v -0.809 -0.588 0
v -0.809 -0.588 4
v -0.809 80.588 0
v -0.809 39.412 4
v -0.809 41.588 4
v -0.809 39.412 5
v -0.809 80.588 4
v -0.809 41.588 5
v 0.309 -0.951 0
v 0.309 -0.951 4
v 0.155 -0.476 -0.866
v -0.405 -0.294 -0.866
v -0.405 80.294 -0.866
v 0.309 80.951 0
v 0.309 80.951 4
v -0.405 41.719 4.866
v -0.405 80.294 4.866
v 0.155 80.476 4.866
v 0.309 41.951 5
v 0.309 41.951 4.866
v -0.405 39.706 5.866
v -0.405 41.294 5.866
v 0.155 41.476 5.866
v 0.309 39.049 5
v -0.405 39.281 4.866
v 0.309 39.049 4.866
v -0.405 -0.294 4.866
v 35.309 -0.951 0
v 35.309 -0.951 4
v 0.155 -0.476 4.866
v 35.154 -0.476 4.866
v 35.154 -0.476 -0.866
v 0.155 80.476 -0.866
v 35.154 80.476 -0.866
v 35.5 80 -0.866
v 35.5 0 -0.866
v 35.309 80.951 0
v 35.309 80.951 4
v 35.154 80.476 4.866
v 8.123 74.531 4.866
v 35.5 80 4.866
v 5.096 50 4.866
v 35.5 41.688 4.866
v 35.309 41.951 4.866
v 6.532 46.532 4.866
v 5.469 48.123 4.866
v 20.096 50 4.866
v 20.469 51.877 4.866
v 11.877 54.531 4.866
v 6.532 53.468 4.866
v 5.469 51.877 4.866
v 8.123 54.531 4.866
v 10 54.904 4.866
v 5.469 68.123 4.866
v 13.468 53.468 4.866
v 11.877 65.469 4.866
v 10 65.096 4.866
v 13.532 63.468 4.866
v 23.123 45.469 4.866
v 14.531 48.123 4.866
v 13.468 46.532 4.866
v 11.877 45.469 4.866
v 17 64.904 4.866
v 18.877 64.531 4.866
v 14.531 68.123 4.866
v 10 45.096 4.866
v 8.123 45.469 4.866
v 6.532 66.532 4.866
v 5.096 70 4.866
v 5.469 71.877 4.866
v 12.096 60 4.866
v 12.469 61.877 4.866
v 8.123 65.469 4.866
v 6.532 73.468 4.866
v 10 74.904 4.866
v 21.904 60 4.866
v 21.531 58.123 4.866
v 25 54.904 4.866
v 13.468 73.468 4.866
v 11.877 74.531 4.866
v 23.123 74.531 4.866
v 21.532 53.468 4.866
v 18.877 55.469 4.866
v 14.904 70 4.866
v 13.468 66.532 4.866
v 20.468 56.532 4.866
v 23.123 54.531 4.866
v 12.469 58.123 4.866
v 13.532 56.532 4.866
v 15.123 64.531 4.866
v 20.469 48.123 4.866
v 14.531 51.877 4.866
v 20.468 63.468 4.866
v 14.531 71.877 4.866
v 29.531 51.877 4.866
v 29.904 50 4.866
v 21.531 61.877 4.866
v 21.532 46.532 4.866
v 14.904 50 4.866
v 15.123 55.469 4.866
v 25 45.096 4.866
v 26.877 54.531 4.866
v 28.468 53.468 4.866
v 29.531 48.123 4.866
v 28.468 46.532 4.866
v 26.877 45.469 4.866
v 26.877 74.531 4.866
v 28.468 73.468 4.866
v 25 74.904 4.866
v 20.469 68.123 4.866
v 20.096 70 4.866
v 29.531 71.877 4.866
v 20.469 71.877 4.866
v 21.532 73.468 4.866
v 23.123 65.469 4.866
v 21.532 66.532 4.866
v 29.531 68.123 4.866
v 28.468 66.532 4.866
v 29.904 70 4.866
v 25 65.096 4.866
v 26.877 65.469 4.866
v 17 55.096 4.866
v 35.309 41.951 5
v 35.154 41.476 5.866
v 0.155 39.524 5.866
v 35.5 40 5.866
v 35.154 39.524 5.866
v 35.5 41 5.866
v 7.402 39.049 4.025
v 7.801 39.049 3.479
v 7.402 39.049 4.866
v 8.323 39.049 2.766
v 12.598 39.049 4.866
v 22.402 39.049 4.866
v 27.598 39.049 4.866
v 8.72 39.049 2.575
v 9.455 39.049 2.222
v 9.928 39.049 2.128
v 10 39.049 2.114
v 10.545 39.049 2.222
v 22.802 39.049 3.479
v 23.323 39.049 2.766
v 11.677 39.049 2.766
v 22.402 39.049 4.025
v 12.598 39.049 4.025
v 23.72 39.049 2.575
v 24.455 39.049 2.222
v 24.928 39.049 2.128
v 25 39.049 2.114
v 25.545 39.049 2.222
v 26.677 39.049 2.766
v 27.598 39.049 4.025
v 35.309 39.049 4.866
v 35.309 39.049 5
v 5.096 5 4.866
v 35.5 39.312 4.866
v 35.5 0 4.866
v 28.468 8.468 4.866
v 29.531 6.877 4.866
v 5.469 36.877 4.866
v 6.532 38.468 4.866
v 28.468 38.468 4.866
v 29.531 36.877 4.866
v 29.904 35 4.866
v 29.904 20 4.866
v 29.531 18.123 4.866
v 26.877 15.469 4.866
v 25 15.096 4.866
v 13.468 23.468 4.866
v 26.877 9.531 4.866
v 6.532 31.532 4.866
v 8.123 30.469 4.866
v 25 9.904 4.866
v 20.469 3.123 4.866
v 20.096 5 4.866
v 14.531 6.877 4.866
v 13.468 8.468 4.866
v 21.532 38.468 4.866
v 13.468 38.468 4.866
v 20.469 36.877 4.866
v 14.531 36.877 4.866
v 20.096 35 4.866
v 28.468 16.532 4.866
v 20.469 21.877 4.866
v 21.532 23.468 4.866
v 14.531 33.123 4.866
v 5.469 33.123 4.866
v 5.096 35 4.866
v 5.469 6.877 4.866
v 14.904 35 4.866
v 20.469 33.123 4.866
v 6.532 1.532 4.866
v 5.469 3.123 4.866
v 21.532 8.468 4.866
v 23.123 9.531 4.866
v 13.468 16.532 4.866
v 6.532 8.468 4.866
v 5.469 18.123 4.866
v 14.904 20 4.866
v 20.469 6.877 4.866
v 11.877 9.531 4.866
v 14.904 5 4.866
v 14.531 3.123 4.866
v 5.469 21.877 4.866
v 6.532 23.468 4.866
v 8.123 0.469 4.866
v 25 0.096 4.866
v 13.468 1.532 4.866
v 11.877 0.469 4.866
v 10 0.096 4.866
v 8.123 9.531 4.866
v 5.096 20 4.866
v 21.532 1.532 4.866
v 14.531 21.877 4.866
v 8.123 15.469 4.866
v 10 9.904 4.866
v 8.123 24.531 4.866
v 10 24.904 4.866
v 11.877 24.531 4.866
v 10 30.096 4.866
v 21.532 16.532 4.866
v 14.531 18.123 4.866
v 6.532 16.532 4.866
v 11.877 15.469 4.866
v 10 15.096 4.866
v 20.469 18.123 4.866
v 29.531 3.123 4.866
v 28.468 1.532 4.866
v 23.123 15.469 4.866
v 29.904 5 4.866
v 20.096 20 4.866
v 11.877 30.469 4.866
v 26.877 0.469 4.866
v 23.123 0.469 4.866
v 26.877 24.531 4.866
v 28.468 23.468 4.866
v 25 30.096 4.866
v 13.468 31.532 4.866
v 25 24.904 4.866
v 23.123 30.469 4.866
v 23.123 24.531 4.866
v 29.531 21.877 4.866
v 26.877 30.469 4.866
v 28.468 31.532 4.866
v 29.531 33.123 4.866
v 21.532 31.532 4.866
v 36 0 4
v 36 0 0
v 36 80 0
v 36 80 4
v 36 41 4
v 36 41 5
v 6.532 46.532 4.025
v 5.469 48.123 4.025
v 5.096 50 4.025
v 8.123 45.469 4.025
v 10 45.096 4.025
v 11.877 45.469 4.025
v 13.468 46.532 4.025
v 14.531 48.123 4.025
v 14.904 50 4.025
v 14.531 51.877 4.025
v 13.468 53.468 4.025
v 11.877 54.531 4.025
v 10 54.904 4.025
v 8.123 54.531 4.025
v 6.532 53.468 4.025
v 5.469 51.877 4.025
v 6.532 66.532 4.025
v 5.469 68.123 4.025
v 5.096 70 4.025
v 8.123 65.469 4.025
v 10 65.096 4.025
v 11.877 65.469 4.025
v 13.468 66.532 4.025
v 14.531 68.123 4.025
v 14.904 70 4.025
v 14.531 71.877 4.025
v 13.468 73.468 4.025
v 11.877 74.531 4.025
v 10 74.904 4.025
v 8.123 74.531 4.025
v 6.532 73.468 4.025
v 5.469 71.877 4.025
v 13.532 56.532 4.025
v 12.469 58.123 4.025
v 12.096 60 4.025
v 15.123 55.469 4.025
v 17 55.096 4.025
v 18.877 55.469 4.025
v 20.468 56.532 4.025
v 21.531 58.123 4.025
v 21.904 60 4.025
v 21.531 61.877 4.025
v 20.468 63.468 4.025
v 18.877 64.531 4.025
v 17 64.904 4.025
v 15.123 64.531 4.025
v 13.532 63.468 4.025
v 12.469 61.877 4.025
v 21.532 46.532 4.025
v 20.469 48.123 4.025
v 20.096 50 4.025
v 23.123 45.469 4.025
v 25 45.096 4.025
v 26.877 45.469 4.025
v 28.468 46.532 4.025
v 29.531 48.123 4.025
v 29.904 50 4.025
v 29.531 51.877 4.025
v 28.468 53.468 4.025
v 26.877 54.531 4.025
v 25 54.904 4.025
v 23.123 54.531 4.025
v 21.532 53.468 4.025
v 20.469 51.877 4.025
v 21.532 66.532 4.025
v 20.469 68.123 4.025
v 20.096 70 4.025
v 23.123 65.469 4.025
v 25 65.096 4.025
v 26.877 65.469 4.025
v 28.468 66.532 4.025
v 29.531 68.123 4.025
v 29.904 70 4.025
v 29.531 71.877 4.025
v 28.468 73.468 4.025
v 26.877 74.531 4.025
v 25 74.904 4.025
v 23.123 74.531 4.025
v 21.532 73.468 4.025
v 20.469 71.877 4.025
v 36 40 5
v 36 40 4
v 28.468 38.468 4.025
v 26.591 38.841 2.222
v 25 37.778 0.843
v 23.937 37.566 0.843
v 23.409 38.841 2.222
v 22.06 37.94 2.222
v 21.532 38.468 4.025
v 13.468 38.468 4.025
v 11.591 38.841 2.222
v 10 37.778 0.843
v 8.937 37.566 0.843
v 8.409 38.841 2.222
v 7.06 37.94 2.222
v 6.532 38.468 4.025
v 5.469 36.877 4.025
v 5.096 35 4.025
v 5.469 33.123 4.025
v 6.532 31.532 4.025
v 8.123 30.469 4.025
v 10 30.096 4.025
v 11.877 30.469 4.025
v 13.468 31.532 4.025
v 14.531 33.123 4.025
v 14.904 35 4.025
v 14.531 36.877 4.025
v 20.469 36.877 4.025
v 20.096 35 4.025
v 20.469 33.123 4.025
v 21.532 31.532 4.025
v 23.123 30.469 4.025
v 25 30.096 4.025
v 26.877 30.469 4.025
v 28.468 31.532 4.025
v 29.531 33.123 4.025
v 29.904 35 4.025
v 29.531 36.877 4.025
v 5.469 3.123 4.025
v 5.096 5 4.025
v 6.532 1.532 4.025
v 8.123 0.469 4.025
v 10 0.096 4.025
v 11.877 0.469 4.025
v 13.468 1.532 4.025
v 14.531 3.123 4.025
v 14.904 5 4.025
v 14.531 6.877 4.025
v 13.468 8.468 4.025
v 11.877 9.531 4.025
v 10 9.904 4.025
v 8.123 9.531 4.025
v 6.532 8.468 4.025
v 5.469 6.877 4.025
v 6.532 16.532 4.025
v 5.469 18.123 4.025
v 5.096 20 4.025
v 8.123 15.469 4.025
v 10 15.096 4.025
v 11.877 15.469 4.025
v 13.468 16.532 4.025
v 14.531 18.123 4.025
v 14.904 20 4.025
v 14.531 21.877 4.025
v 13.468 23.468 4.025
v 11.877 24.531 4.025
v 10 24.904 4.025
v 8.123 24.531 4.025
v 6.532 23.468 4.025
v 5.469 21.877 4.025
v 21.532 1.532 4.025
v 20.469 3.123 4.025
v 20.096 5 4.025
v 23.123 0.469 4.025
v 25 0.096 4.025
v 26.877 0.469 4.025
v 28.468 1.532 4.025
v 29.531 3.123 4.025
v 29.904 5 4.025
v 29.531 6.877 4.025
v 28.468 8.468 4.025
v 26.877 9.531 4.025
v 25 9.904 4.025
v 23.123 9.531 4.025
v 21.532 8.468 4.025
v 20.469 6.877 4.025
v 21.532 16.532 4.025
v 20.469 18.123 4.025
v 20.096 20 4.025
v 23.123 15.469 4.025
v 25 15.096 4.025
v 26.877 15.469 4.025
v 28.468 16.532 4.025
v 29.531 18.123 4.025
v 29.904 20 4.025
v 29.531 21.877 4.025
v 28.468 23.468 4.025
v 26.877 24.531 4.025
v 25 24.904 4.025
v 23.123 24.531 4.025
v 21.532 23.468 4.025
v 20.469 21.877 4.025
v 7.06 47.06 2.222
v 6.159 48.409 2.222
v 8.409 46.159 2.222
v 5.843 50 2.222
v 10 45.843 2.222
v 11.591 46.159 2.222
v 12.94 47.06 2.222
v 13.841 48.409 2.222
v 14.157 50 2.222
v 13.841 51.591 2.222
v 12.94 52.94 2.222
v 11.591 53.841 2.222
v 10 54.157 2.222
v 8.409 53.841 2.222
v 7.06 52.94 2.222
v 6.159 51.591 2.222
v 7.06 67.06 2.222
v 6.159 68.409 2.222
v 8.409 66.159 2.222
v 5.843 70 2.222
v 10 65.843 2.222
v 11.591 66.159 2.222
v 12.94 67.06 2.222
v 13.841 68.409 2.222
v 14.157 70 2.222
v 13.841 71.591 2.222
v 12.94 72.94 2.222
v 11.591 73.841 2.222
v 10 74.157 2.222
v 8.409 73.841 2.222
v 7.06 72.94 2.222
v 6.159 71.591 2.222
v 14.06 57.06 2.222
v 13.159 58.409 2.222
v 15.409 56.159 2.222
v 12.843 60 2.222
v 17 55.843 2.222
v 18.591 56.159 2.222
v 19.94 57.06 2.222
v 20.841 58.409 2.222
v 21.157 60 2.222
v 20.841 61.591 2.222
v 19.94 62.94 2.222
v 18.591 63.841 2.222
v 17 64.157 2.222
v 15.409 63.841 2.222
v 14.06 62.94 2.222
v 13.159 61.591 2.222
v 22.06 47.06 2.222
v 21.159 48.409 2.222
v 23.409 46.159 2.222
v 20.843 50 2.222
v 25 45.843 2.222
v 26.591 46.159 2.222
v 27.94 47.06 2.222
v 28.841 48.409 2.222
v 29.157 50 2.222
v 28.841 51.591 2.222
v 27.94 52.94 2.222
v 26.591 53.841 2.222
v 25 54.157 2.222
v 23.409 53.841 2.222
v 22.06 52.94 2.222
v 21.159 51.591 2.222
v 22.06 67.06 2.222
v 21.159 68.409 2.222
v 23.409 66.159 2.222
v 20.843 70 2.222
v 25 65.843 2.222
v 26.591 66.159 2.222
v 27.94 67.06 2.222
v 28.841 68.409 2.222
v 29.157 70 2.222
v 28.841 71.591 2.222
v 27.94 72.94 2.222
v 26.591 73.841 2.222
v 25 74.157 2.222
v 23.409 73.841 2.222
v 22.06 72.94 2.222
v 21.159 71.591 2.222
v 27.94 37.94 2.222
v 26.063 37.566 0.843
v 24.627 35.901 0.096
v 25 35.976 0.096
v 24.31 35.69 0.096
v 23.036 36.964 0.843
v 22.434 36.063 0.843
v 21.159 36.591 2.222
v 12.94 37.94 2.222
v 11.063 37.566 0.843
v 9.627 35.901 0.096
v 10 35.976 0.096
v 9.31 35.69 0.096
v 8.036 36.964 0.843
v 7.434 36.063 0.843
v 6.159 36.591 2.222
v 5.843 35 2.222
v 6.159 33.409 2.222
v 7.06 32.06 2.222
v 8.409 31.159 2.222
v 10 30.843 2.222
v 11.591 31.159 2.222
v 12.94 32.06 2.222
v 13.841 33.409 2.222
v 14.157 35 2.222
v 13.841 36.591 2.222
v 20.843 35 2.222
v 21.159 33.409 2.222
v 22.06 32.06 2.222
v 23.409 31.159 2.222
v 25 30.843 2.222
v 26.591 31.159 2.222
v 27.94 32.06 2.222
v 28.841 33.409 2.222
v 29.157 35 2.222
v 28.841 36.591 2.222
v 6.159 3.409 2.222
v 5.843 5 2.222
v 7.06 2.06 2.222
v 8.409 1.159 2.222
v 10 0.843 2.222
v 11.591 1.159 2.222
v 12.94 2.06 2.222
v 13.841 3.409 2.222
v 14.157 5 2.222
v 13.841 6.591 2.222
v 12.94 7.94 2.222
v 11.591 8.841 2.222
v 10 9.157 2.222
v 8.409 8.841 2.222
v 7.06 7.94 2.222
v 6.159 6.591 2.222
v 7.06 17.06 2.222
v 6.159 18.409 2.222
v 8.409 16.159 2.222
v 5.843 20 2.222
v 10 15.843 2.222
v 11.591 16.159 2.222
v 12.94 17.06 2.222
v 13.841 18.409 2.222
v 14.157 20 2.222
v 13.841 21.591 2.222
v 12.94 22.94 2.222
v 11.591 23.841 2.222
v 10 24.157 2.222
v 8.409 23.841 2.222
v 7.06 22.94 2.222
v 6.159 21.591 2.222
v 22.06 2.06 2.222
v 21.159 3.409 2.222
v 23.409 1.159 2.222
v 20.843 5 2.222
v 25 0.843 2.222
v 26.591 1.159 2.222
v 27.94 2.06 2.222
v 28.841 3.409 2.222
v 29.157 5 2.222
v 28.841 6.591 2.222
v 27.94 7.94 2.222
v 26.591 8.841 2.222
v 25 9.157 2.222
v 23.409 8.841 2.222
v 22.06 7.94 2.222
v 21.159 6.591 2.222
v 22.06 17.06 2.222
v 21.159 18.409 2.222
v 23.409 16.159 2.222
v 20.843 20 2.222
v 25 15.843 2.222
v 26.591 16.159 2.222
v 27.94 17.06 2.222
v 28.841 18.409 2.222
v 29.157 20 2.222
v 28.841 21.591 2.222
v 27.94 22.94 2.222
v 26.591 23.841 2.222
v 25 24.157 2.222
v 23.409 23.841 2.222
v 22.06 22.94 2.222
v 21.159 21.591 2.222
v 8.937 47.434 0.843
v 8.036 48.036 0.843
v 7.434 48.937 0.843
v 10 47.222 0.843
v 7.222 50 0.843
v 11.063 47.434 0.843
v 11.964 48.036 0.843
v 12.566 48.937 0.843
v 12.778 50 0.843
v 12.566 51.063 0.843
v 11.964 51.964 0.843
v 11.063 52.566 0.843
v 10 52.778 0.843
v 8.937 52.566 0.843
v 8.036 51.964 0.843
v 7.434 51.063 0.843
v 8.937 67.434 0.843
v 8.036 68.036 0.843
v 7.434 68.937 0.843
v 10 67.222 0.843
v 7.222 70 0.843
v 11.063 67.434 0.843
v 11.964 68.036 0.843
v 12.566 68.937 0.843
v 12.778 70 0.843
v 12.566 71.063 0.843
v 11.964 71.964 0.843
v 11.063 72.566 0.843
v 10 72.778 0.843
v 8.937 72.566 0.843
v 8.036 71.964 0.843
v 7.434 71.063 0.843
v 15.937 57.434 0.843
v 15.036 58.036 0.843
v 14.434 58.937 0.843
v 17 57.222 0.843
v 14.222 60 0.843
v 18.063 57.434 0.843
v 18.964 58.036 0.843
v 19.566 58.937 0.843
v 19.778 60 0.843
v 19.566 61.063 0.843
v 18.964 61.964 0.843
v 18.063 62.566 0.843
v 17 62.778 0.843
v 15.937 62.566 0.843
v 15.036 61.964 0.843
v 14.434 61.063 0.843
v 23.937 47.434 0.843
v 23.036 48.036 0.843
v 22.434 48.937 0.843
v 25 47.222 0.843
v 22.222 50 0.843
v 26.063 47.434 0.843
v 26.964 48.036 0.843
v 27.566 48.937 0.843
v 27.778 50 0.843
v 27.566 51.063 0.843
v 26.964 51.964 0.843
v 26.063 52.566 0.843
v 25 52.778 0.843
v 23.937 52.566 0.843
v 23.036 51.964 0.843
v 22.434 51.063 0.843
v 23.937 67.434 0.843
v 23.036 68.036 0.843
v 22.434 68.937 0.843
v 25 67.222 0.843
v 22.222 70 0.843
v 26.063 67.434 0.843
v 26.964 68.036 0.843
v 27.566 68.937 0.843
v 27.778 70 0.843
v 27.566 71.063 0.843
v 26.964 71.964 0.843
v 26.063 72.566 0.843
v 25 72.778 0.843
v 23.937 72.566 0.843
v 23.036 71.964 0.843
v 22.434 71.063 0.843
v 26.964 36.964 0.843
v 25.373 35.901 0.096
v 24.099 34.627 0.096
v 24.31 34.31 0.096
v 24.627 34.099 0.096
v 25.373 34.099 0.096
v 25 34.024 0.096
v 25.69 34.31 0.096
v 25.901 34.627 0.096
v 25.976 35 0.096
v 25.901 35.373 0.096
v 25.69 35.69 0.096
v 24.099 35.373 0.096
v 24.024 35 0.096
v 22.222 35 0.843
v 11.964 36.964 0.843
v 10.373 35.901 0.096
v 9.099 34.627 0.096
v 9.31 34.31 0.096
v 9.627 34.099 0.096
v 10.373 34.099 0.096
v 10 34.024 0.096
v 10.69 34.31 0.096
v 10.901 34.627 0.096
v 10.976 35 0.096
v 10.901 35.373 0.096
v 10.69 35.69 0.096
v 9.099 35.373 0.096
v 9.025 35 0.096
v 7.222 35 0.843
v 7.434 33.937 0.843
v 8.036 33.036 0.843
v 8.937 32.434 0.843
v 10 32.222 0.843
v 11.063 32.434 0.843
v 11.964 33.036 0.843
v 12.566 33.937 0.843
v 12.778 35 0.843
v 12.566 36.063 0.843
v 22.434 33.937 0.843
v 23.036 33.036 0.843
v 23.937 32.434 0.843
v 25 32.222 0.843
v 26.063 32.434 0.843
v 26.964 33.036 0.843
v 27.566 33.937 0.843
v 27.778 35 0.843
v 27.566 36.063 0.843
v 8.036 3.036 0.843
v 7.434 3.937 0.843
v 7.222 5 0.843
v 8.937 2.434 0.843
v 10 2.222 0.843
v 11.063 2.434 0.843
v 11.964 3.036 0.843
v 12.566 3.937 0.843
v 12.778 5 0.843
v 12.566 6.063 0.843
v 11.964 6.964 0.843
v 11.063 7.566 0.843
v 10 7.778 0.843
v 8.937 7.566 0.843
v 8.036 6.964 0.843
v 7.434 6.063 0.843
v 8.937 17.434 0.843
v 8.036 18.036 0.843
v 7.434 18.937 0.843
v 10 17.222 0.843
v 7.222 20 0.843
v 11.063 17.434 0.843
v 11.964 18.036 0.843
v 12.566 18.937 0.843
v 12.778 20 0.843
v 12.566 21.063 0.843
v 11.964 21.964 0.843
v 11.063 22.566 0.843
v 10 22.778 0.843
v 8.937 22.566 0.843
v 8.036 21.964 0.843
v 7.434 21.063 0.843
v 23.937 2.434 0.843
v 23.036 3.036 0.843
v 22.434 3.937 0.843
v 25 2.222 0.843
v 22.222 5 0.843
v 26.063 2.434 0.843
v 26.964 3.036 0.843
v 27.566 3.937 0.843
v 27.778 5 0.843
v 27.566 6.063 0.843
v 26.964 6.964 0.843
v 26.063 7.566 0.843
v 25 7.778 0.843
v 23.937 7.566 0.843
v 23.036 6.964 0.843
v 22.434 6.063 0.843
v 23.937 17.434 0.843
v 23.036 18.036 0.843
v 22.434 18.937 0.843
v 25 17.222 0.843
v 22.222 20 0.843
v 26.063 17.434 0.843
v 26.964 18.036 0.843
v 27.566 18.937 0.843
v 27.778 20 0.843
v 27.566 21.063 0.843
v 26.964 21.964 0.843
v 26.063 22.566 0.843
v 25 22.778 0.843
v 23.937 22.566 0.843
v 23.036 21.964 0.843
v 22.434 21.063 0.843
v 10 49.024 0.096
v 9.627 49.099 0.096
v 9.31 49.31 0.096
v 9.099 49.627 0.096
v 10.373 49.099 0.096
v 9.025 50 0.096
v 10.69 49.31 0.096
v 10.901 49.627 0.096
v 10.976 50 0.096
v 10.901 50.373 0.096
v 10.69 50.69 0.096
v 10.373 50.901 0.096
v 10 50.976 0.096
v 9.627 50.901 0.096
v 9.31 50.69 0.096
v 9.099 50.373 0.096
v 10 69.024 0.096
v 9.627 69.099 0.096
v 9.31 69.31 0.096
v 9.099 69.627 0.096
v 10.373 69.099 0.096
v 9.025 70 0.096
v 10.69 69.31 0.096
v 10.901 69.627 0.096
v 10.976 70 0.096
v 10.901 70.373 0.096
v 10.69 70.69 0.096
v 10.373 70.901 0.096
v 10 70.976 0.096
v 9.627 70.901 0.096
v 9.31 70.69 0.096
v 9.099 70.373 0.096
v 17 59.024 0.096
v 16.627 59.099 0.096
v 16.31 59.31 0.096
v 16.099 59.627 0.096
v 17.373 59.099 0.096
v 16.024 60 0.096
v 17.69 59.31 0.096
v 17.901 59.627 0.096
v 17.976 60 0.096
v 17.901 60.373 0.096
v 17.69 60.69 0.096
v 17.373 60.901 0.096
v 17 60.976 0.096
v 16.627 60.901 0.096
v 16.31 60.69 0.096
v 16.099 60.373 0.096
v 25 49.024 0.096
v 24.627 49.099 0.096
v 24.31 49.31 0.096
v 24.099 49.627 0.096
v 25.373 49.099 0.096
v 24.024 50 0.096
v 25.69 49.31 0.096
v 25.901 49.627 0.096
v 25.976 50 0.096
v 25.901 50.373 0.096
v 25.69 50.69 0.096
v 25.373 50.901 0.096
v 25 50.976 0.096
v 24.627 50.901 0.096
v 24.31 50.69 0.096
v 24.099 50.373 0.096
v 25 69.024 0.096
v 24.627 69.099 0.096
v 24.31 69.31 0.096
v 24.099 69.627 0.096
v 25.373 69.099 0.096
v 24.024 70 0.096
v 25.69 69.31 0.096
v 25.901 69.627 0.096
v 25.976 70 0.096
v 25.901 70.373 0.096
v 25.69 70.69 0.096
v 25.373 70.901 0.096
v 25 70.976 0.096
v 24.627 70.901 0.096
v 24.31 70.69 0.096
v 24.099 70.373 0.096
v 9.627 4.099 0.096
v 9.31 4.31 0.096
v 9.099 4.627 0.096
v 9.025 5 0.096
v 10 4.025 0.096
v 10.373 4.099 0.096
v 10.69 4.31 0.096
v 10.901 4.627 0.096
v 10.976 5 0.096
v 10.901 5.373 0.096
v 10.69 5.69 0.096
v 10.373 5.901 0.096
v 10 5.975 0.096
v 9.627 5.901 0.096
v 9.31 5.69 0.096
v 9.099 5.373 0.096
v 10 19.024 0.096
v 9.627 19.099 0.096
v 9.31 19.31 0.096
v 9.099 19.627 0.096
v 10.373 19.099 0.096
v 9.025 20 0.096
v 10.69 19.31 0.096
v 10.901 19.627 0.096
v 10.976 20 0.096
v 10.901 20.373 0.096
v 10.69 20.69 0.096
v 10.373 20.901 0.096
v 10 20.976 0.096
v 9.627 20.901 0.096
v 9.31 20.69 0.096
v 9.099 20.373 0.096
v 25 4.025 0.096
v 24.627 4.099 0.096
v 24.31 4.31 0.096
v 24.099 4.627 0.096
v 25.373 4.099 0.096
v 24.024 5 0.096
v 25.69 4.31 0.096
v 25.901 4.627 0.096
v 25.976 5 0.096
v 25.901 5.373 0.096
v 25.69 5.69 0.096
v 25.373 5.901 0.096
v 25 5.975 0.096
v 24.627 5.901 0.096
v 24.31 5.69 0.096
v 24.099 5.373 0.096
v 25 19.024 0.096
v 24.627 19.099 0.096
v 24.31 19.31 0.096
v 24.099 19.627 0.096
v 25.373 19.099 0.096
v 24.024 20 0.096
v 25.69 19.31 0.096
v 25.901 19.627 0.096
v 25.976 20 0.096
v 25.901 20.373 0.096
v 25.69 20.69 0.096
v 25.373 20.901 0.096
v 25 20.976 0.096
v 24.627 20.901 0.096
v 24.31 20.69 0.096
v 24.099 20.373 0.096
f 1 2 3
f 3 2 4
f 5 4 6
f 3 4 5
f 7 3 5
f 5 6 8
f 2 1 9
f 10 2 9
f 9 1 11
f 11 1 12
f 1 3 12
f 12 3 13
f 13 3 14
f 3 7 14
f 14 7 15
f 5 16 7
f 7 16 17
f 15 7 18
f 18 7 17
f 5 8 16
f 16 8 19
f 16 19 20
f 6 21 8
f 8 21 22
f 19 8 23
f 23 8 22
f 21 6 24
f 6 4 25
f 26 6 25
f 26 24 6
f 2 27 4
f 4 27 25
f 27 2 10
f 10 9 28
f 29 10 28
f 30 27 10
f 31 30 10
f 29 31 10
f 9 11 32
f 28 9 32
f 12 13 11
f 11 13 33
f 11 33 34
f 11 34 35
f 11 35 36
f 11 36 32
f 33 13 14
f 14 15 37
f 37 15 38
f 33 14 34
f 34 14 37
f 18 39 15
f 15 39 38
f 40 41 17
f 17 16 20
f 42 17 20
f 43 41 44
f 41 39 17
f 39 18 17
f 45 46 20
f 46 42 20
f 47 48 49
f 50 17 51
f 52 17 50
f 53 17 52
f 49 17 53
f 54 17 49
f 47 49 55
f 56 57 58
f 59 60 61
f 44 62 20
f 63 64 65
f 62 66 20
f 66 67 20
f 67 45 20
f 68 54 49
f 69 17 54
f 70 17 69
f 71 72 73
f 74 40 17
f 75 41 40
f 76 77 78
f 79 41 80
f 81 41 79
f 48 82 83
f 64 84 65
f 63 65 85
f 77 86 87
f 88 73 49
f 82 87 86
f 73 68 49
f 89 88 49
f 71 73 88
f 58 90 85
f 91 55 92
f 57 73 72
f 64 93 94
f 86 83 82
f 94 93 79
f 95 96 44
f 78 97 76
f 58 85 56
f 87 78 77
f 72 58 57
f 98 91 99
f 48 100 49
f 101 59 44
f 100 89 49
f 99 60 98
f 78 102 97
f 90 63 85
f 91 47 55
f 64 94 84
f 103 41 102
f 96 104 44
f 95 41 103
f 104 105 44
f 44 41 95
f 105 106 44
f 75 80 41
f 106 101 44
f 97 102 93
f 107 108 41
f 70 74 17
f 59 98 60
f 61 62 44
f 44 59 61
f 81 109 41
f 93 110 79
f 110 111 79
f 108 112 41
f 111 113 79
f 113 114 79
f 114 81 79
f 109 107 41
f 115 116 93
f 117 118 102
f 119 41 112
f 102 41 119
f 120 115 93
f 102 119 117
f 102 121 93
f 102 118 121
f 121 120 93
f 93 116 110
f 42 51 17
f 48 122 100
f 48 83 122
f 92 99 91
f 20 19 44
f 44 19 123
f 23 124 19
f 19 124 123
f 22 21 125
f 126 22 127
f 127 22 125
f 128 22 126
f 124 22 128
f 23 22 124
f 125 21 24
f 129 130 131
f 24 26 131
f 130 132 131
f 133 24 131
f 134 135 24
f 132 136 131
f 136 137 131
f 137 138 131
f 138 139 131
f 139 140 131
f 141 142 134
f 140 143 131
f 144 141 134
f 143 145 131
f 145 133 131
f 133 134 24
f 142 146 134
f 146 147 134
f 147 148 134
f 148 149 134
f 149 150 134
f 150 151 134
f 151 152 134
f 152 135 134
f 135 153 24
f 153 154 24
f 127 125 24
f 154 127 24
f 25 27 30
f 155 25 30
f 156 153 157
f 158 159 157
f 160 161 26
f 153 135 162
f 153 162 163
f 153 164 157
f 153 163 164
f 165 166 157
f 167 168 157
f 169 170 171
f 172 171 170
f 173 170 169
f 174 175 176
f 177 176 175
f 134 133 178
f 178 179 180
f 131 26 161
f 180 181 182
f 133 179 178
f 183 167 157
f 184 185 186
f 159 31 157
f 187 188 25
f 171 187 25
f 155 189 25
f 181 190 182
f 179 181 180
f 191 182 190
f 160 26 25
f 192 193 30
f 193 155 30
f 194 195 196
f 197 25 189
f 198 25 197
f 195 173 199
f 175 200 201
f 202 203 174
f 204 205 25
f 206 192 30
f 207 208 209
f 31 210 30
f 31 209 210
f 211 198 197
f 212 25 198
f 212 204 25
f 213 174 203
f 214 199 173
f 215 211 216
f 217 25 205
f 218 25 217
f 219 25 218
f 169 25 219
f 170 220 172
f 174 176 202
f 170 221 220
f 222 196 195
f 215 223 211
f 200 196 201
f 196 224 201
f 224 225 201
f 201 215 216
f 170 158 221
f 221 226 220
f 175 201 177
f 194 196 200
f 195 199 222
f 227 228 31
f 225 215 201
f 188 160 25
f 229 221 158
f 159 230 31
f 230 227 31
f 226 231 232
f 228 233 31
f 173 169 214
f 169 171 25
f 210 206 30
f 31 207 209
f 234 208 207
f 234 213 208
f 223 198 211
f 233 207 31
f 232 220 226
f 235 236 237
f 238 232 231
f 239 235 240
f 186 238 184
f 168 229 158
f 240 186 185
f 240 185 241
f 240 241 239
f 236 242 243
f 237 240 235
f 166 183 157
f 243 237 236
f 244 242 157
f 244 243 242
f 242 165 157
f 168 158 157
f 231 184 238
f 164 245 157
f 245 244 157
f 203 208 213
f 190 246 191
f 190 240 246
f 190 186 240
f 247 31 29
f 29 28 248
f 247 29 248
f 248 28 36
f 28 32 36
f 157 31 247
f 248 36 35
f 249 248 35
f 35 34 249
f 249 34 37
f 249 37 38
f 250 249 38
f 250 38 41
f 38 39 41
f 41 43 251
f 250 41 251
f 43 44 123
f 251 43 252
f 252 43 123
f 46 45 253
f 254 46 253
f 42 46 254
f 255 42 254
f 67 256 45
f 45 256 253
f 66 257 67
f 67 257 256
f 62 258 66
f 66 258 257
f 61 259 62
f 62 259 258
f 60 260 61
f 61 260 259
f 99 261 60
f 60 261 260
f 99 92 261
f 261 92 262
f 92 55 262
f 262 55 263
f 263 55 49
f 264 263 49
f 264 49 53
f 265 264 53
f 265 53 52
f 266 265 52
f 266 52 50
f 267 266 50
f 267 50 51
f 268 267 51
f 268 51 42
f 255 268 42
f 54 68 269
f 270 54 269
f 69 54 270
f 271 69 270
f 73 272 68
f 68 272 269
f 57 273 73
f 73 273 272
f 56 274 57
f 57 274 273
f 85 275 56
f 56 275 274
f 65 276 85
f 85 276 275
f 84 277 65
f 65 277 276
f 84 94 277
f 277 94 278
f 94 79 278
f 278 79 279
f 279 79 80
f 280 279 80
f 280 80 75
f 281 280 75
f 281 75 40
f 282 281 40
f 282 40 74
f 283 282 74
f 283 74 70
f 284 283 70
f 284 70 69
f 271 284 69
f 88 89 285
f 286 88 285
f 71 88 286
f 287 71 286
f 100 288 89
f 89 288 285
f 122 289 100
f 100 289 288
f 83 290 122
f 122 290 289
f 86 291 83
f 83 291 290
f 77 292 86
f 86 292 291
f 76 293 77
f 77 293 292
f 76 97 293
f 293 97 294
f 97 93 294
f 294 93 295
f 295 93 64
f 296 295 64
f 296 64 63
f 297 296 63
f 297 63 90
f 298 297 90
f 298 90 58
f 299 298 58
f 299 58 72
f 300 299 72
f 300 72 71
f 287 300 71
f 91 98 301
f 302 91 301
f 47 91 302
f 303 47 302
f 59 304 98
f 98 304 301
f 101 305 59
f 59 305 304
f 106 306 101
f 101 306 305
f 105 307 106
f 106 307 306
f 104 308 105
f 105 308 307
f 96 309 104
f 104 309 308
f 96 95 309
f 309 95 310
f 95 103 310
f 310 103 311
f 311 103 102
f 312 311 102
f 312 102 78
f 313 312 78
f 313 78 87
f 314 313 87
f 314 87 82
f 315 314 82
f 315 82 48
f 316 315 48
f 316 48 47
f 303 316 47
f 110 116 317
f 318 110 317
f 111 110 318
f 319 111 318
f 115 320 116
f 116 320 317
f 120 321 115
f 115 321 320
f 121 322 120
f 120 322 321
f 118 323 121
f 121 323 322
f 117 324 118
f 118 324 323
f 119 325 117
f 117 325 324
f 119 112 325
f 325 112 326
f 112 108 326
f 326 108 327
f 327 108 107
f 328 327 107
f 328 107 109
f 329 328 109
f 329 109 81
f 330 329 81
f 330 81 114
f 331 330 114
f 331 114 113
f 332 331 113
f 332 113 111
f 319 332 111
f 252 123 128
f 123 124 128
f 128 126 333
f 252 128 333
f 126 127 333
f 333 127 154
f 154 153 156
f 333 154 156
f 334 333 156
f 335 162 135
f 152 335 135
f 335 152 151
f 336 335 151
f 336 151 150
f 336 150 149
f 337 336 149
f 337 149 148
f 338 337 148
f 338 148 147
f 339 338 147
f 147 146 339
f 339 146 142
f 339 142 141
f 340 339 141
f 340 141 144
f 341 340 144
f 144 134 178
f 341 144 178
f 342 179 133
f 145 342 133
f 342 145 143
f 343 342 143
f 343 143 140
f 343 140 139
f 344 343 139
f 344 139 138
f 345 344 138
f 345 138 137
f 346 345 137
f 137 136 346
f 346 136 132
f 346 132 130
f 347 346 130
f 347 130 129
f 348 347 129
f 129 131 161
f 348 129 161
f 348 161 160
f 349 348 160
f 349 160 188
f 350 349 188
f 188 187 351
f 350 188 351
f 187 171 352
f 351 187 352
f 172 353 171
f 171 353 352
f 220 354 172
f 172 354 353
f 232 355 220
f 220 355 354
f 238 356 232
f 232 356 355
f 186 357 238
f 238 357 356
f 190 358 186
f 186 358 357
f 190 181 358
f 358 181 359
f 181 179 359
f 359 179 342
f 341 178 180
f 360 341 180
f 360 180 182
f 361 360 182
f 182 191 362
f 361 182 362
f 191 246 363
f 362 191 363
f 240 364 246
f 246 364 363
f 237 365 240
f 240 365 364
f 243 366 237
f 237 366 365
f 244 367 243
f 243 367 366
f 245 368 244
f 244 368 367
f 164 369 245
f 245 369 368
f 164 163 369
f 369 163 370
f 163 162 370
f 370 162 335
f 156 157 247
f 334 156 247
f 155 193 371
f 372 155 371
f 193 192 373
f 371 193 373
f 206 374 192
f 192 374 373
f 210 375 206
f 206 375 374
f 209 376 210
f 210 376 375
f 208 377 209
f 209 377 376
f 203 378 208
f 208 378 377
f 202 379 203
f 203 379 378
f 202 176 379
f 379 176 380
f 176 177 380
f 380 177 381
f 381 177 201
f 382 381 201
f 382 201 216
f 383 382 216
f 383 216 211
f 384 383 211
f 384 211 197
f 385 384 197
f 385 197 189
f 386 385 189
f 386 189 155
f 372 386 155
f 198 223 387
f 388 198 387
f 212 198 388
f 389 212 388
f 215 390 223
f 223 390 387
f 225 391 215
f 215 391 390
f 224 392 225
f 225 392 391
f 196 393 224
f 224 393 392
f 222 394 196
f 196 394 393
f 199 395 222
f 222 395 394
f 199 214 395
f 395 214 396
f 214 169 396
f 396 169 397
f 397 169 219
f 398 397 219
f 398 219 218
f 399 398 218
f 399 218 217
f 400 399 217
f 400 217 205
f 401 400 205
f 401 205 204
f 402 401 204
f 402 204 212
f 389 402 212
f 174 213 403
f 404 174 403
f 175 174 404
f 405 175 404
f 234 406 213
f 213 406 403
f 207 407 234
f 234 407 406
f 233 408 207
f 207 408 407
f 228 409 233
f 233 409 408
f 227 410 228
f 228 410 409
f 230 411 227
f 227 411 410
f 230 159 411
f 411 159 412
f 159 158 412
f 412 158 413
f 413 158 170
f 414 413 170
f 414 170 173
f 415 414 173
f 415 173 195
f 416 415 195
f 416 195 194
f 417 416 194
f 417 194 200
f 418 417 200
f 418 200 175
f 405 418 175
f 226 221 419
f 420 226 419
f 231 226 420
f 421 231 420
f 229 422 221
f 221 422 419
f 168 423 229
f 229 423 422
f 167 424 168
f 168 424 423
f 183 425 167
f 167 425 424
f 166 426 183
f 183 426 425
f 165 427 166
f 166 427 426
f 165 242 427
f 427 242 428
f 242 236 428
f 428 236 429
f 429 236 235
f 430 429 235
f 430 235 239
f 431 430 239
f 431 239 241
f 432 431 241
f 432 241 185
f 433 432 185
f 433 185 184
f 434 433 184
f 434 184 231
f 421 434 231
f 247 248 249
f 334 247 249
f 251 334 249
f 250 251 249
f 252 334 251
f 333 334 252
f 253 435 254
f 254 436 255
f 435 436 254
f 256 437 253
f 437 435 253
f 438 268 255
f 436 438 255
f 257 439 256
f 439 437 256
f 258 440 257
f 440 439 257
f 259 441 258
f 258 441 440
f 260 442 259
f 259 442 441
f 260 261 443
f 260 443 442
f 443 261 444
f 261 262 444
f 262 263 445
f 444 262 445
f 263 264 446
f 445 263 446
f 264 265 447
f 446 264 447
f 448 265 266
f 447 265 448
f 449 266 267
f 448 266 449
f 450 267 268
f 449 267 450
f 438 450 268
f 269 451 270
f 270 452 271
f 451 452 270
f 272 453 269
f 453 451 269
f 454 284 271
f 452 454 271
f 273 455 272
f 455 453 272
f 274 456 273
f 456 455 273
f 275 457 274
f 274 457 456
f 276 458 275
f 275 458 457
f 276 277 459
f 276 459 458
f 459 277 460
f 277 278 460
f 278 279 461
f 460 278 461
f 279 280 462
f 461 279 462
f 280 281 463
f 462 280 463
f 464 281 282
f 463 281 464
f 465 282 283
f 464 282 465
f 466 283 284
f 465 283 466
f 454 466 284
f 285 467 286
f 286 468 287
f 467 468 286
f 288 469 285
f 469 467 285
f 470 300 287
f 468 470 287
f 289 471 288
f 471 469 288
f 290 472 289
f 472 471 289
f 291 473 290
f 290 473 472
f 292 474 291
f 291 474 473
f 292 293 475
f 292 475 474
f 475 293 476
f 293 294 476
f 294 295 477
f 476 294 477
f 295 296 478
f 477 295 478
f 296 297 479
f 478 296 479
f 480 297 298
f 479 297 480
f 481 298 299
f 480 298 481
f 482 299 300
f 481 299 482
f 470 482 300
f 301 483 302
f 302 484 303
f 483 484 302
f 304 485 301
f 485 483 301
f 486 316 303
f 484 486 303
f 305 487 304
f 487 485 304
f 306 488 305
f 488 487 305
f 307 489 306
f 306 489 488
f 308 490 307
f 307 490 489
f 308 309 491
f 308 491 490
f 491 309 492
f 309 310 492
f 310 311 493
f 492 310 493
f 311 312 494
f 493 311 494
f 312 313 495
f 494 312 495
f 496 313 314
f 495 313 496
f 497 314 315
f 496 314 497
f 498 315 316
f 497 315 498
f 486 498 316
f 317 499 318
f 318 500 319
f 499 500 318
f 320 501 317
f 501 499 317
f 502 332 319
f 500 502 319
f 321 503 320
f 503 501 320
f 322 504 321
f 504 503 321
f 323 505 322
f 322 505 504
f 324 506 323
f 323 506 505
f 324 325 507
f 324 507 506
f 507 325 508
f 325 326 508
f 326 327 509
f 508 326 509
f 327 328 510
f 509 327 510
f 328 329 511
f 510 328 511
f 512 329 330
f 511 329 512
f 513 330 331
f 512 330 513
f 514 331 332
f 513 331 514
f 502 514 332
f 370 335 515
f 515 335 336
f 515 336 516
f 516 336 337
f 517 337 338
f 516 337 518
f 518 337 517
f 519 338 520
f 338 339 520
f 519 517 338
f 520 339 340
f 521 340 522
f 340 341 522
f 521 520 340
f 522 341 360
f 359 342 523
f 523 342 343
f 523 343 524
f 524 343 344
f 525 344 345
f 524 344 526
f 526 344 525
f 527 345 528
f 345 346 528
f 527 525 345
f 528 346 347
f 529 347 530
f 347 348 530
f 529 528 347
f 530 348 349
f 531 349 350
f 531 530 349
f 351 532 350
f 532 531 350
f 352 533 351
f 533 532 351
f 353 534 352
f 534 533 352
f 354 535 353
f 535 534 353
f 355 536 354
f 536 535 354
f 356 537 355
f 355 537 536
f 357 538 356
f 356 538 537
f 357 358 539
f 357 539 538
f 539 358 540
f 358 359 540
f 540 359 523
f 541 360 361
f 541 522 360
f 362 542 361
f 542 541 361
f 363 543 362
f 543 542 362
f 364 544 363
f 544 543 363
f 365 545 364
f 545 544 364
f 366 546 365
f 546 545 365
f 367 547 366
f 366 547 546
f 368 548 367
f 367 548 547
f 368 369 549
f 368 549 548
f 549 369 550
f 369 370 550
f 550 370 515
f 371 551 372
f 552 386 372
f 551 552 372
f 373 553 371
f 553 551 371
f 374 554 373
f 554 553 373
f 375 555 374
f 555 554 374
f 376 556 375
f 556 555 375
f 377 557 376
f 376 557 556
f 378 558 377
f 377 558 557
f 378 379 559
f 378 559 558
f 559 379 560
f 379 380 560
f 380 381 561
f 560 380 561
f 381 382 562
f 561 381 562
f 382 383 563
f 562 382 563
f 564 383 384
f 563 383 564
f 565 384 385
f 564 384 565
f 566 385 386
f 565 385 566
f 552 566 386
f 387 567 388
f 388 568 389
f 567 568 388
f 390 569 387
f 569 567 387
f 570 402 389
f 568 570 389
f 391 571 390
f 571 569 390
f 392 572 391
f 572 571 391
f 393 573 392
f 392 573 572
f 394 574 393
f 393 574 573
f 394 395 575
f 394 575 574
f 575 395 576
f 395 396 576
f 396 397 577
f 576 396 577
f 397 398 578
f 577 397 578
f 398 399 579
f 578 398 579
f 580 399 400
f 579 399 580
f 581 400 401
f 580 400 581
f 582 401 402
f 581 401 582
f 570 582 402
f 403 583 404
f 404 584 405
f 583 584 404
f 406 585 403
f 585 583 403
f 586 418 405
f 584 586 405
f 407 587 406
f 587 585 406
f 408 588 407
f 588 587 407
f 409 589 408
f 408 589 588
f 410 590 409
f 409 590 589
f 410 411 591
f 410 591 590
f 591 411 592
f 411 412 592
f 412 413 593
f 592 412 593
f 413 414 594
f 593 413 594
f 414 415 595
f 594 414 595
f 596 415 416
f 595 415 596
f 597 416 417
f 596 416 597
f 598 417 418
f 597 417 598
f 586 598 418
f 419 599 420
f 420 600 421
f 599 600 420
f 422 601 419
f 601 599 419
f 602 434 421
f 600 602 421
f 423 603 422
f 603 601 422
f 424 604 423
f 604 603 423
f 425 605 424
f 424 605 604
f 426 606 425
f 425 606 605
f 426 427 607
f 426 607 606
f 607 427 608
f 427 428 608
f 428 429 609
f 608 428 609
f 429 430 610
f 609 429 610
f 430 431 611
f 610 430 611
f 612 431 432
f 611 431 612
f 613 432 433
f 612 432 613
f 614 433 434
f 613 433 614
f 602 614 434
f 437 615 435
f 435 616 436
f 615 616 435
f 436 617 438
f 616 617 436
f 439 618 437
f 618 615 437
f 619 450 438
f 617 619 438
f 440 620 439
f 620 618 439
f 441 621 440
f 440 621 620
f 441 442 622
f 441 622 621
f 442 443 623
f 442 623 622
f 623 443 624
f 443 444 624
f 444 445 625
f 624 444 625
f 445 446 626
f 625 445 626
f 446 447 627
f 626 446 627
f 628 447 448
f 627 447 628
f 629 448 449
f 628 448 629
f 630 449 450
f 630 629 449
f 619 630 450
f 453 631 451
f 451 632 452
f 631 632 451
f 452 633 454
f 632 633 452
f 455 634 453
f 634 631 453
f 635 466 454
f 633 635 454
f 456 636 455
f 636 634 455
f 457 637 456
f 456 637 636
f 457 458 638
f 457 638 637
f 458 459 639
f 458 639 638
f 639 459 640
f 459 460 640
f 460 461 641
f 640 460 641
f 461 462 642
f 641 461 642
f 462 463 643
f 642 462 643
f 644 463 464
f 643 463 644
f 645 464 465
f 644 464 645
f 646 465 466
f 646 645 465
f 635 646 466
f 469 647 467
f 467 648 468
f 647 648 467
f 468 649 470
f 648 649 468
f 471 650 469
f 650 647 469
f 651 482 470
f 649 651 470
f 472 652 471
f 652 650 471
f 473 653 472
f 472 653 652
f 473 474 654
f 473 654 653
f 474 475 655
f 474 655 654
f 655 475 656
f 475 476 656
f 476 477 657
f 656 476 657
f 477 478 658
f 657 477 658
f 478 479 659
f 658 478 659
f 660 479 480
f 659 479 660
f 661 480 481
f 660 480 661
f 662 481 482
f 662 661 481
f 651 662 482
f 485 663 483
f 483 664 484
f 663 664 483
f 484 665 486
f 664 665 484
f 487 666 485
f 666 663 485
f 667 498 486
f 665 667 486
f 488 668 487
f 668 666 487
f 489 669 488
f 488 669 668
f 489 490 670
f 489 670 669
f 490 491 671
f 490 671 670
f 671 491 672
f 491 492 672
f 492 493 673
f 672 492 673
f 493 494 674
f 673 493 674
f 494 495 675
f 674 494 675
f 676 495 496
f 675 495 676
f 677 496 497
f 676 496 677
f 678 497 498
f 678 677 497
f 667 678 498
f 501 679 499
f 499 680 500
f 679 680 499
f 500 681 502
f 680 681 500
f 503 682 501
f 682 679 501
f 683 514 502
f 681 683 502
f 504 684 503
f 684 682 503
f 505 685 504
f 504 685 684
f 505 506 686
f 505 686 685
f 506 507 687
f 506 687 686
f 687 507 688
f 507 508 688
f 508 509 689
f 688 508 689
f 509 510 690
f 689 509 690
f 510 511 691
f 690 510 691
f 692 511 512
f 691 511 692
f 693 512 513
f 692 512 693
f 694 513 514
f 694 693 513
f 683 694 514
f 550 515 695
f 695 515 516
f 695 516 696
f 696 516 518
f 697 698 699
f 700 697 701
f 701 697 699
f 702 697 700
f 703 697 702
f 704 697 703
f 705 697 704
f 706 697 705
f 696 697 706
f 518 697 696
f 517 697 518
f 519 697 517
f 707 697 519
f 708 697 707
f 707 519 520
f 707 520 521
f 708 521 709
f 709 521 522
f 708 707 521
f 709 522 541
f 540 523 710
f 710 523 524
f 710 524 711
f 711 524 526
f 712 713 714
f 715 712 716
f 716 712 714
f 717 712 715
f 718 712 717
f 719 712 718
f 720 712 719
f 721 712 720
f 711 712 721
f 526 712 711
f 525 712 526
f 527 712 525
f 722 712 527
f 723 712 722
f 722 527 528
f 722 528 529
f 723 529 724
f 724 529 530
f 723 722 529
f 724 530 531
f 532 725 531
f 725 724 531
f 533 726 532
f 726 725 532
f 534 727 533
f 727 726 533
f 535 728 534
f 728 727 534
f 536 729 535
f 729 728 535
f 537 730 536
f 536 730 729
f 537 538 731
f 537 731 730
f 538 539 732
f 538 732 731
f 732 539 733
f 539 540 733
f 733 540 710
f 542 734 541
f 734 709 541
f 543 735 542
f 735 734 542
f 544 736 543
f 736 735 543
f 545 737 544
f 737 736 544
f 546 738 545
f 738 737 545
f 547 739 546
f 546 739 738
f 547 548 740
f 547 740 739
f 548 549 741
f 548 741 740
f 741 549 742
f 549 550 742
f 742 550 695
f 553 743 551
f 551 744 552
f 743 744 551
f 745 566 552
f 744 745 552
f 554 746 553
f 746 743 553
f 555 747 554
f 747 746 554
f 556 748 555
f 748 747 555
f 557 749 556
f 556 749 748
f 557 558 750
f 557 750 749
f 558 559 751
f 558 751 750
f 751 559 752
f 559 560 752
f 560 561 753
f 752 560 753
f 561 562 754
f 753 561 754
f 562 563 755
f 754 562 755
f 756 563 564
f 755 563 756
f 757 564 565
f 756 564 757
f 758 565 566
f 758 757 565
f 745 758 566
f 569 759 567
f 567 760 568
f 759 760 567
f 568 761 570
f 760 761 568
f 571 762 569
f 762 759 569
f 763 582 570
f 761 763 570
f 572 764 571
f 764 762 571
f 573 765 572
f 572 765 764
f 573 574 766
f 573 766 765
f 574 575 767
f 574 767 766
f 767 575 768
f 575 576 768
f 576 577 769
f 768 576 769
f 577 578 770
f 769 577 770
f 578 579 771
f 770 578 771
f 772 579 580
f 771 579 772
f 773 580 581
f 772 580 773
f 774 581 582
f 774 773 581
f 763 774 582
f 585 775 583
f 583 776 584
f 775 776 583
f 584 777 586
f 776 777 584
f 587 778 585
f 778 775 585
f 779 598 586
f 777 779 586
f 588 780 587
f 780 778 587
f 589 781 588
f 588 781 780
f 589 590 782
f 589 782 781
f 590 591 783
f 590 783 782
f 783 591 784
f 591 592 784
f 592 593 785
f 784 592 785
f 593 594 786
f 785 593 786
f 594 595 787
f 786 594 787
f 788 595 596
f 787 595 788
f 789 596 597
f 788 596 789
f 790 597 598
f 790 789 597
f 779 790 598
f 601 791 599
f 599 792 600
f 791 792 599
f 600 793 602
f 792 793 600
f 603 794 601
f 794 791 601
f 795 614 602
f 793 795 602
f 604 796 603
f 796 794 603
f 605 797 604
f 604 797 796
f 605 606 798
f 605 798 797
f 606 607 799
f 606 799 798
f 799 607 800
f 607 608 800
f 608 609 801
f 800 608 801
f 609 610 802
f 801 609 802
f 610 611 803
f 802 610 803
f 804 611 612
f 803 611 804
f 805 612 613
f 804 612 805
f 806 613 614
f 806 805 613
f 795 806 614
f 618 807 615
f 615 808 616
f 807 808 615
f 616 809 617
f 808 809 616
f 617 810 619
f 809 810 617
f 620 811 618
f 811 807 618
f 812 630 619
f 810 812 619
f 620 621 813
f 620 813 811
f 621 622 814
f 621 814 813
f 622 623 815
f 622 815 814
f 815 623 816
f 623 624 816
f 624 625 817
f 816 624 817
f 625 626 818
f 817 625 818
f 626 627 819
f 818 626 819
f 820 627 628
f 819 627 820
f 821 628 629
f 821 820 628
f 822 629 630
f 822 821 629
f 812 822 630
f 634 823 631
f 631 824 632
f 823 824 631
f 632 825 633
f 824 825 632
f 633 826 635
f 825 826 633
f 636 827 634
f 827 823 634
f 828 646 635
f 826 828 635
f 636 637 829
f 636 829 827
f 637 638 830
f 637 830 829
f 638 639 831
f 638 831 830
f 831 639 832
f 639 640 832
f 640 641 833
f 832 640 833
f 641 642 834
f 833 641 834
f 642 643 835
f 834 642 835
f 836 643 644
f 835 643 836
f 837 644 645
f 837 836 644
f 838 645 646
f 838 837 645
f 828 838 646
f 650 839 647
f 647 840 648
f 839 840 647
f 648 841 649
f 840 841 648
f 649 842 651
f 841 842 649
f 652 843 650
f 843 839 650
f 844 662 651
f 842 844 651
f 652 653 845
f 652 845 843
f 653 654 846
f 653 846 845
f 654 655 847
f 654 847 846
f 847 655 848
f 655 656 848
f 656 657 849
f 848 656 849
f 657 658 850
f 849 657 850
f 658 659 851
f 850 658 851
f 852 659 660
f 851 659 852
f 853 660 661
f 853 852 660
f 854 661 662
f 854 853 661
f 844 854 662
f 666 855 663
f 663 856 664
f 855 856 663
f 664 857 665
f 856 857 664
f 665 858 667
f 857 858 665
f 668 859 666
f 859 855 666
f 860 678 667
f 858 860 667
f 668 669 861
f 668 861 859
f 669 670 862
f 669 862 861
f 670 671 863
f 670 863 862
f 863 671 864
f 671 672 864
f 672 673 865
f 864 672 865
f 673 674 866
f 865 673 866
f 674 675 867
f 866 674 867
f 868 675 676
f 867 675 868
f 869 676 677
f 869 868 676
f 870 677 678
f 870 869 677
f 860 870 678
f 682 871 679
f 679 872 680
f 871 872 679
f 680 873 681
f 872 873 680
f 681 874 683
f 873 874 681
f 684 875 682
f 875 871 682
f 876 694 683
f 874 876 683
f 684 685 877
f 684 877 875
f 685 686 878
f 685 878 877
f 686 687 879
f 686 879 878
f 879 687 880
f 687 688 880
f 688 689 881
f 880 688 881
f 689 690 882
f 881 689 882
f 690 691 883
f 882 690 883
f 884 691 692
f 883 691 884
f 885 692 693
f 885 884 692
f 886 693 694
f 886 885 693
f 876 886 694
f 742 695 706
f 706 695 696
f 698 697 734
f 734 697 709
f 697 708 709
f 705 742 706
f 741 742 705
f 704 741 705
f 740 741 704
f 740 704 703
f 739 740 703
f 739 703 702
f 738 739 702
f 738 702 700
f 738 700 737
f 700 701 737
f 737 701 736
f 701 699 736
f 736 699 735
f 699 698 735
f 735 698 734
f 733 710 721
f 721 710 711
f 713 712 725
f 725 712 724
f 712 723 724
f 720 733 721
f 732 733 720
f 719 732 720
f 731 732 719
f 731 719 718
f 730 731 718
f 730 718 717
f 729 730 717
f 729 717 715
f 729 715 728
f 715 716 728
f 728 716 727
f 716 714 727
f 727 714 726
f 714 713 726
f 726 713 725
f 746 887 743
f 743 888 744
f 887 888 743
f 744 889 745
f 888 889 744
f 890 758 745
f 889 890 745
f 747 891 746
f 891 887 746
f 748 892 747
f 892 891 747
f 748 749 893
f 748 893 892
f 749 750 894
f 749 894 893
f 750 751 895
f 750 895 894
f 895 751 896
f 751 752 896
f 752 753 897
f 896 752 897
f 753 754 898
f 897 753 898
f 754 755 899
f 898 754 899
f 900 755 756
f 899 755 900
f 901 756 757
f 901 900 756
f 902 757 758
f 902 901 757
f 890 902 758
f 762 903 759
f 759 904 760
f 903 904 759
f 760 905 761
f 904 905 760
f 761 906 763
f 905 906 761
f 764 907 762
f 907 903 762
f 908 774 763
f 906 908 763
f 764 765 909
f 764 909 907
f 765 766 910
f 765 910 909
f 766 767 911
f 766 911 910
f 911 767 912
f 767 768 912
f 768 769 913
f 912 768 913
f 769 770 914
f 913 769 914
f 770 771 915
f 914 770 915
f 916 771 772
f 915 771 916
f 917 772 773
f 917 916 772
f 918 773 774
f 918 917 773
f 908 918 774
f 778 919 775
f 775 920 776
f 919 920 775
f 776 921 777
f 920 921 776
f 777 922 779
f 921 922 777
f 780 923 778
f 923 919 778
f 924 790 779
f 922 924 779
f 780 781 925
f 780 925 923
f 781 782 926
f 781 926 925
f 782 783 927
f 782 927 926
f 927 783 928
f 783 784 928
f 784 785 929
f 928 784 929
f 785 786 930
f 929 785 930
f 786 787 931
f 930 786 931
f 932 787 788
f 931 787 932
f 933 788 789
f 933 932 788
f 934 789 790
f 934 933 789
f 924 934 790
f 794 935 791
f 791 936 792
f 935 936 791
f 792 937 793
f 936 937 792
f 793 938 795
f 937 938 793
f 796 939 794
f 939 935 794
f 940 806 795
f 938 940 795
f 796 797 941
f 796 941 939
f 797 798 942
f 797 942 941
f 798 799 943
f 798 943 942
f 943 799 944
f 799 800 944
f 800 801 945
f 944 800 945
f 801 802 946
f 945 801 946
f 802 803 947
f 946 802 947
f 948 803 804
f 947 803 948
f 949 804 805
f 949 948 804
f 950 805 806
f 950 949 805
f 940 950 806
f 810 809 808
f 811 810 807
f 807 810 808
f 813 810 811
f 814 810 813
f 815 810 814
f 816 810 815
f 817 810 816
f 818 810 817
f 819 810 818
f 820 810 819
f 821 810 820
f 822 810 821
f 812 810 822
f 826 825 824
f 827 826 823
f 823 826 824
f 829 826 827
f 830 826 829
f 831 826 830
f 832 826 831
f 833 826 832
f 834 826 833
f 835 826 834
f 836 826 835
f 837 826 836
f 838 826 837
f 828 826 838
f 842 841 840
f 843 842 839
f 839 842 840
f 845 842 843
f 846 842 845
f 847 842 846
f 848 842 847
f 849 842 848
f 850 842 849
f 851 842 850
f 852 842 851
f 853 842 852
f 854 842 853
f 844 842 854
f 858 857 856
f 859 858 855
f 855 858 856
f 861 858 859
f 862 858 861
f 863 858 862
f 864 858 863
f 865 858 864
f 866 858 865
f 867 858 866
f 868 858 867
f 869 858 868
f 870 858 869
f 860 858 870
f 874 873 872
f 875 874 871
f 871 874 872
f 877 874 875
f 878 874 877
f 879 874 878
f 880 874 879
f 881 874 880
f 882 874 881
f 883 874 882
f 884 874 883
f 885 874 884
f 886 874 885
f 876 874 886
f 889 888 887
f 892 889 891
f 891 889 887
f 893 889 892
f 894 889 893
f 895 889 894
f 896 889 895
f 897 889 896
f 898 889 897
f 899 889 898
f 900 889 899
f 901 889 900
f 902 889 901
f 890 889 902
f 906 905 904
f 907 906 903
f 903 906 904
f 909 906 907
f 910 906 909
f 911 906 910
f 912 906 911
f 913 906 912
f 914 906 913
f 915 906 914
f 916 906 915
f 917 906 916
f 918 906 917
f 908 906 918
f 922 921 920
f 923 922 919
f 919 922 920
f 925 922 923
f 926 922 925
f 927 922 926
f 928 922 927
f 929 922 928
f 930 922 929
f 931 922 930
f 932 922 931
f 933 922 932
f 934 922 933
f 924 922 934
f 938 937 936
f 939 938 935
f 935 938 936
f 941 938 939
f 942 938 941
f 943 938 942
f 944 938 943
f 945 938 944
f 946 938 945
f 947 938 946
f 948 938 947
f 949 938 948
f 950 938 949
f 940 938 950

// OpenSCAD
// Loguncov Maxim 13.12.13


//$fn=128;


translate([0,40,0])
minkowski()
{cube([35,1,5]);
sphere(1);
}

difference() {

//основа
minkowski()
{cube([35,80,4]);
sphere(1);
}

//отверстия
translate([10,5,5])sphere(5);
translate([25,5,5])sphere(5);
translate([10,20,5])sphere(5);
translate([25,20,5])sphere(5);
translate([10,35,5])sphere(5);
translate([25,35,5])sphere(5);

translate([10,70,5])sphere(5);
translate([25,50,5])sphere(5);
translate([25,70,5])sphere(5);
translate([10,50,5])sphere(5);
translate([17,60,5])sphere(5);
}
